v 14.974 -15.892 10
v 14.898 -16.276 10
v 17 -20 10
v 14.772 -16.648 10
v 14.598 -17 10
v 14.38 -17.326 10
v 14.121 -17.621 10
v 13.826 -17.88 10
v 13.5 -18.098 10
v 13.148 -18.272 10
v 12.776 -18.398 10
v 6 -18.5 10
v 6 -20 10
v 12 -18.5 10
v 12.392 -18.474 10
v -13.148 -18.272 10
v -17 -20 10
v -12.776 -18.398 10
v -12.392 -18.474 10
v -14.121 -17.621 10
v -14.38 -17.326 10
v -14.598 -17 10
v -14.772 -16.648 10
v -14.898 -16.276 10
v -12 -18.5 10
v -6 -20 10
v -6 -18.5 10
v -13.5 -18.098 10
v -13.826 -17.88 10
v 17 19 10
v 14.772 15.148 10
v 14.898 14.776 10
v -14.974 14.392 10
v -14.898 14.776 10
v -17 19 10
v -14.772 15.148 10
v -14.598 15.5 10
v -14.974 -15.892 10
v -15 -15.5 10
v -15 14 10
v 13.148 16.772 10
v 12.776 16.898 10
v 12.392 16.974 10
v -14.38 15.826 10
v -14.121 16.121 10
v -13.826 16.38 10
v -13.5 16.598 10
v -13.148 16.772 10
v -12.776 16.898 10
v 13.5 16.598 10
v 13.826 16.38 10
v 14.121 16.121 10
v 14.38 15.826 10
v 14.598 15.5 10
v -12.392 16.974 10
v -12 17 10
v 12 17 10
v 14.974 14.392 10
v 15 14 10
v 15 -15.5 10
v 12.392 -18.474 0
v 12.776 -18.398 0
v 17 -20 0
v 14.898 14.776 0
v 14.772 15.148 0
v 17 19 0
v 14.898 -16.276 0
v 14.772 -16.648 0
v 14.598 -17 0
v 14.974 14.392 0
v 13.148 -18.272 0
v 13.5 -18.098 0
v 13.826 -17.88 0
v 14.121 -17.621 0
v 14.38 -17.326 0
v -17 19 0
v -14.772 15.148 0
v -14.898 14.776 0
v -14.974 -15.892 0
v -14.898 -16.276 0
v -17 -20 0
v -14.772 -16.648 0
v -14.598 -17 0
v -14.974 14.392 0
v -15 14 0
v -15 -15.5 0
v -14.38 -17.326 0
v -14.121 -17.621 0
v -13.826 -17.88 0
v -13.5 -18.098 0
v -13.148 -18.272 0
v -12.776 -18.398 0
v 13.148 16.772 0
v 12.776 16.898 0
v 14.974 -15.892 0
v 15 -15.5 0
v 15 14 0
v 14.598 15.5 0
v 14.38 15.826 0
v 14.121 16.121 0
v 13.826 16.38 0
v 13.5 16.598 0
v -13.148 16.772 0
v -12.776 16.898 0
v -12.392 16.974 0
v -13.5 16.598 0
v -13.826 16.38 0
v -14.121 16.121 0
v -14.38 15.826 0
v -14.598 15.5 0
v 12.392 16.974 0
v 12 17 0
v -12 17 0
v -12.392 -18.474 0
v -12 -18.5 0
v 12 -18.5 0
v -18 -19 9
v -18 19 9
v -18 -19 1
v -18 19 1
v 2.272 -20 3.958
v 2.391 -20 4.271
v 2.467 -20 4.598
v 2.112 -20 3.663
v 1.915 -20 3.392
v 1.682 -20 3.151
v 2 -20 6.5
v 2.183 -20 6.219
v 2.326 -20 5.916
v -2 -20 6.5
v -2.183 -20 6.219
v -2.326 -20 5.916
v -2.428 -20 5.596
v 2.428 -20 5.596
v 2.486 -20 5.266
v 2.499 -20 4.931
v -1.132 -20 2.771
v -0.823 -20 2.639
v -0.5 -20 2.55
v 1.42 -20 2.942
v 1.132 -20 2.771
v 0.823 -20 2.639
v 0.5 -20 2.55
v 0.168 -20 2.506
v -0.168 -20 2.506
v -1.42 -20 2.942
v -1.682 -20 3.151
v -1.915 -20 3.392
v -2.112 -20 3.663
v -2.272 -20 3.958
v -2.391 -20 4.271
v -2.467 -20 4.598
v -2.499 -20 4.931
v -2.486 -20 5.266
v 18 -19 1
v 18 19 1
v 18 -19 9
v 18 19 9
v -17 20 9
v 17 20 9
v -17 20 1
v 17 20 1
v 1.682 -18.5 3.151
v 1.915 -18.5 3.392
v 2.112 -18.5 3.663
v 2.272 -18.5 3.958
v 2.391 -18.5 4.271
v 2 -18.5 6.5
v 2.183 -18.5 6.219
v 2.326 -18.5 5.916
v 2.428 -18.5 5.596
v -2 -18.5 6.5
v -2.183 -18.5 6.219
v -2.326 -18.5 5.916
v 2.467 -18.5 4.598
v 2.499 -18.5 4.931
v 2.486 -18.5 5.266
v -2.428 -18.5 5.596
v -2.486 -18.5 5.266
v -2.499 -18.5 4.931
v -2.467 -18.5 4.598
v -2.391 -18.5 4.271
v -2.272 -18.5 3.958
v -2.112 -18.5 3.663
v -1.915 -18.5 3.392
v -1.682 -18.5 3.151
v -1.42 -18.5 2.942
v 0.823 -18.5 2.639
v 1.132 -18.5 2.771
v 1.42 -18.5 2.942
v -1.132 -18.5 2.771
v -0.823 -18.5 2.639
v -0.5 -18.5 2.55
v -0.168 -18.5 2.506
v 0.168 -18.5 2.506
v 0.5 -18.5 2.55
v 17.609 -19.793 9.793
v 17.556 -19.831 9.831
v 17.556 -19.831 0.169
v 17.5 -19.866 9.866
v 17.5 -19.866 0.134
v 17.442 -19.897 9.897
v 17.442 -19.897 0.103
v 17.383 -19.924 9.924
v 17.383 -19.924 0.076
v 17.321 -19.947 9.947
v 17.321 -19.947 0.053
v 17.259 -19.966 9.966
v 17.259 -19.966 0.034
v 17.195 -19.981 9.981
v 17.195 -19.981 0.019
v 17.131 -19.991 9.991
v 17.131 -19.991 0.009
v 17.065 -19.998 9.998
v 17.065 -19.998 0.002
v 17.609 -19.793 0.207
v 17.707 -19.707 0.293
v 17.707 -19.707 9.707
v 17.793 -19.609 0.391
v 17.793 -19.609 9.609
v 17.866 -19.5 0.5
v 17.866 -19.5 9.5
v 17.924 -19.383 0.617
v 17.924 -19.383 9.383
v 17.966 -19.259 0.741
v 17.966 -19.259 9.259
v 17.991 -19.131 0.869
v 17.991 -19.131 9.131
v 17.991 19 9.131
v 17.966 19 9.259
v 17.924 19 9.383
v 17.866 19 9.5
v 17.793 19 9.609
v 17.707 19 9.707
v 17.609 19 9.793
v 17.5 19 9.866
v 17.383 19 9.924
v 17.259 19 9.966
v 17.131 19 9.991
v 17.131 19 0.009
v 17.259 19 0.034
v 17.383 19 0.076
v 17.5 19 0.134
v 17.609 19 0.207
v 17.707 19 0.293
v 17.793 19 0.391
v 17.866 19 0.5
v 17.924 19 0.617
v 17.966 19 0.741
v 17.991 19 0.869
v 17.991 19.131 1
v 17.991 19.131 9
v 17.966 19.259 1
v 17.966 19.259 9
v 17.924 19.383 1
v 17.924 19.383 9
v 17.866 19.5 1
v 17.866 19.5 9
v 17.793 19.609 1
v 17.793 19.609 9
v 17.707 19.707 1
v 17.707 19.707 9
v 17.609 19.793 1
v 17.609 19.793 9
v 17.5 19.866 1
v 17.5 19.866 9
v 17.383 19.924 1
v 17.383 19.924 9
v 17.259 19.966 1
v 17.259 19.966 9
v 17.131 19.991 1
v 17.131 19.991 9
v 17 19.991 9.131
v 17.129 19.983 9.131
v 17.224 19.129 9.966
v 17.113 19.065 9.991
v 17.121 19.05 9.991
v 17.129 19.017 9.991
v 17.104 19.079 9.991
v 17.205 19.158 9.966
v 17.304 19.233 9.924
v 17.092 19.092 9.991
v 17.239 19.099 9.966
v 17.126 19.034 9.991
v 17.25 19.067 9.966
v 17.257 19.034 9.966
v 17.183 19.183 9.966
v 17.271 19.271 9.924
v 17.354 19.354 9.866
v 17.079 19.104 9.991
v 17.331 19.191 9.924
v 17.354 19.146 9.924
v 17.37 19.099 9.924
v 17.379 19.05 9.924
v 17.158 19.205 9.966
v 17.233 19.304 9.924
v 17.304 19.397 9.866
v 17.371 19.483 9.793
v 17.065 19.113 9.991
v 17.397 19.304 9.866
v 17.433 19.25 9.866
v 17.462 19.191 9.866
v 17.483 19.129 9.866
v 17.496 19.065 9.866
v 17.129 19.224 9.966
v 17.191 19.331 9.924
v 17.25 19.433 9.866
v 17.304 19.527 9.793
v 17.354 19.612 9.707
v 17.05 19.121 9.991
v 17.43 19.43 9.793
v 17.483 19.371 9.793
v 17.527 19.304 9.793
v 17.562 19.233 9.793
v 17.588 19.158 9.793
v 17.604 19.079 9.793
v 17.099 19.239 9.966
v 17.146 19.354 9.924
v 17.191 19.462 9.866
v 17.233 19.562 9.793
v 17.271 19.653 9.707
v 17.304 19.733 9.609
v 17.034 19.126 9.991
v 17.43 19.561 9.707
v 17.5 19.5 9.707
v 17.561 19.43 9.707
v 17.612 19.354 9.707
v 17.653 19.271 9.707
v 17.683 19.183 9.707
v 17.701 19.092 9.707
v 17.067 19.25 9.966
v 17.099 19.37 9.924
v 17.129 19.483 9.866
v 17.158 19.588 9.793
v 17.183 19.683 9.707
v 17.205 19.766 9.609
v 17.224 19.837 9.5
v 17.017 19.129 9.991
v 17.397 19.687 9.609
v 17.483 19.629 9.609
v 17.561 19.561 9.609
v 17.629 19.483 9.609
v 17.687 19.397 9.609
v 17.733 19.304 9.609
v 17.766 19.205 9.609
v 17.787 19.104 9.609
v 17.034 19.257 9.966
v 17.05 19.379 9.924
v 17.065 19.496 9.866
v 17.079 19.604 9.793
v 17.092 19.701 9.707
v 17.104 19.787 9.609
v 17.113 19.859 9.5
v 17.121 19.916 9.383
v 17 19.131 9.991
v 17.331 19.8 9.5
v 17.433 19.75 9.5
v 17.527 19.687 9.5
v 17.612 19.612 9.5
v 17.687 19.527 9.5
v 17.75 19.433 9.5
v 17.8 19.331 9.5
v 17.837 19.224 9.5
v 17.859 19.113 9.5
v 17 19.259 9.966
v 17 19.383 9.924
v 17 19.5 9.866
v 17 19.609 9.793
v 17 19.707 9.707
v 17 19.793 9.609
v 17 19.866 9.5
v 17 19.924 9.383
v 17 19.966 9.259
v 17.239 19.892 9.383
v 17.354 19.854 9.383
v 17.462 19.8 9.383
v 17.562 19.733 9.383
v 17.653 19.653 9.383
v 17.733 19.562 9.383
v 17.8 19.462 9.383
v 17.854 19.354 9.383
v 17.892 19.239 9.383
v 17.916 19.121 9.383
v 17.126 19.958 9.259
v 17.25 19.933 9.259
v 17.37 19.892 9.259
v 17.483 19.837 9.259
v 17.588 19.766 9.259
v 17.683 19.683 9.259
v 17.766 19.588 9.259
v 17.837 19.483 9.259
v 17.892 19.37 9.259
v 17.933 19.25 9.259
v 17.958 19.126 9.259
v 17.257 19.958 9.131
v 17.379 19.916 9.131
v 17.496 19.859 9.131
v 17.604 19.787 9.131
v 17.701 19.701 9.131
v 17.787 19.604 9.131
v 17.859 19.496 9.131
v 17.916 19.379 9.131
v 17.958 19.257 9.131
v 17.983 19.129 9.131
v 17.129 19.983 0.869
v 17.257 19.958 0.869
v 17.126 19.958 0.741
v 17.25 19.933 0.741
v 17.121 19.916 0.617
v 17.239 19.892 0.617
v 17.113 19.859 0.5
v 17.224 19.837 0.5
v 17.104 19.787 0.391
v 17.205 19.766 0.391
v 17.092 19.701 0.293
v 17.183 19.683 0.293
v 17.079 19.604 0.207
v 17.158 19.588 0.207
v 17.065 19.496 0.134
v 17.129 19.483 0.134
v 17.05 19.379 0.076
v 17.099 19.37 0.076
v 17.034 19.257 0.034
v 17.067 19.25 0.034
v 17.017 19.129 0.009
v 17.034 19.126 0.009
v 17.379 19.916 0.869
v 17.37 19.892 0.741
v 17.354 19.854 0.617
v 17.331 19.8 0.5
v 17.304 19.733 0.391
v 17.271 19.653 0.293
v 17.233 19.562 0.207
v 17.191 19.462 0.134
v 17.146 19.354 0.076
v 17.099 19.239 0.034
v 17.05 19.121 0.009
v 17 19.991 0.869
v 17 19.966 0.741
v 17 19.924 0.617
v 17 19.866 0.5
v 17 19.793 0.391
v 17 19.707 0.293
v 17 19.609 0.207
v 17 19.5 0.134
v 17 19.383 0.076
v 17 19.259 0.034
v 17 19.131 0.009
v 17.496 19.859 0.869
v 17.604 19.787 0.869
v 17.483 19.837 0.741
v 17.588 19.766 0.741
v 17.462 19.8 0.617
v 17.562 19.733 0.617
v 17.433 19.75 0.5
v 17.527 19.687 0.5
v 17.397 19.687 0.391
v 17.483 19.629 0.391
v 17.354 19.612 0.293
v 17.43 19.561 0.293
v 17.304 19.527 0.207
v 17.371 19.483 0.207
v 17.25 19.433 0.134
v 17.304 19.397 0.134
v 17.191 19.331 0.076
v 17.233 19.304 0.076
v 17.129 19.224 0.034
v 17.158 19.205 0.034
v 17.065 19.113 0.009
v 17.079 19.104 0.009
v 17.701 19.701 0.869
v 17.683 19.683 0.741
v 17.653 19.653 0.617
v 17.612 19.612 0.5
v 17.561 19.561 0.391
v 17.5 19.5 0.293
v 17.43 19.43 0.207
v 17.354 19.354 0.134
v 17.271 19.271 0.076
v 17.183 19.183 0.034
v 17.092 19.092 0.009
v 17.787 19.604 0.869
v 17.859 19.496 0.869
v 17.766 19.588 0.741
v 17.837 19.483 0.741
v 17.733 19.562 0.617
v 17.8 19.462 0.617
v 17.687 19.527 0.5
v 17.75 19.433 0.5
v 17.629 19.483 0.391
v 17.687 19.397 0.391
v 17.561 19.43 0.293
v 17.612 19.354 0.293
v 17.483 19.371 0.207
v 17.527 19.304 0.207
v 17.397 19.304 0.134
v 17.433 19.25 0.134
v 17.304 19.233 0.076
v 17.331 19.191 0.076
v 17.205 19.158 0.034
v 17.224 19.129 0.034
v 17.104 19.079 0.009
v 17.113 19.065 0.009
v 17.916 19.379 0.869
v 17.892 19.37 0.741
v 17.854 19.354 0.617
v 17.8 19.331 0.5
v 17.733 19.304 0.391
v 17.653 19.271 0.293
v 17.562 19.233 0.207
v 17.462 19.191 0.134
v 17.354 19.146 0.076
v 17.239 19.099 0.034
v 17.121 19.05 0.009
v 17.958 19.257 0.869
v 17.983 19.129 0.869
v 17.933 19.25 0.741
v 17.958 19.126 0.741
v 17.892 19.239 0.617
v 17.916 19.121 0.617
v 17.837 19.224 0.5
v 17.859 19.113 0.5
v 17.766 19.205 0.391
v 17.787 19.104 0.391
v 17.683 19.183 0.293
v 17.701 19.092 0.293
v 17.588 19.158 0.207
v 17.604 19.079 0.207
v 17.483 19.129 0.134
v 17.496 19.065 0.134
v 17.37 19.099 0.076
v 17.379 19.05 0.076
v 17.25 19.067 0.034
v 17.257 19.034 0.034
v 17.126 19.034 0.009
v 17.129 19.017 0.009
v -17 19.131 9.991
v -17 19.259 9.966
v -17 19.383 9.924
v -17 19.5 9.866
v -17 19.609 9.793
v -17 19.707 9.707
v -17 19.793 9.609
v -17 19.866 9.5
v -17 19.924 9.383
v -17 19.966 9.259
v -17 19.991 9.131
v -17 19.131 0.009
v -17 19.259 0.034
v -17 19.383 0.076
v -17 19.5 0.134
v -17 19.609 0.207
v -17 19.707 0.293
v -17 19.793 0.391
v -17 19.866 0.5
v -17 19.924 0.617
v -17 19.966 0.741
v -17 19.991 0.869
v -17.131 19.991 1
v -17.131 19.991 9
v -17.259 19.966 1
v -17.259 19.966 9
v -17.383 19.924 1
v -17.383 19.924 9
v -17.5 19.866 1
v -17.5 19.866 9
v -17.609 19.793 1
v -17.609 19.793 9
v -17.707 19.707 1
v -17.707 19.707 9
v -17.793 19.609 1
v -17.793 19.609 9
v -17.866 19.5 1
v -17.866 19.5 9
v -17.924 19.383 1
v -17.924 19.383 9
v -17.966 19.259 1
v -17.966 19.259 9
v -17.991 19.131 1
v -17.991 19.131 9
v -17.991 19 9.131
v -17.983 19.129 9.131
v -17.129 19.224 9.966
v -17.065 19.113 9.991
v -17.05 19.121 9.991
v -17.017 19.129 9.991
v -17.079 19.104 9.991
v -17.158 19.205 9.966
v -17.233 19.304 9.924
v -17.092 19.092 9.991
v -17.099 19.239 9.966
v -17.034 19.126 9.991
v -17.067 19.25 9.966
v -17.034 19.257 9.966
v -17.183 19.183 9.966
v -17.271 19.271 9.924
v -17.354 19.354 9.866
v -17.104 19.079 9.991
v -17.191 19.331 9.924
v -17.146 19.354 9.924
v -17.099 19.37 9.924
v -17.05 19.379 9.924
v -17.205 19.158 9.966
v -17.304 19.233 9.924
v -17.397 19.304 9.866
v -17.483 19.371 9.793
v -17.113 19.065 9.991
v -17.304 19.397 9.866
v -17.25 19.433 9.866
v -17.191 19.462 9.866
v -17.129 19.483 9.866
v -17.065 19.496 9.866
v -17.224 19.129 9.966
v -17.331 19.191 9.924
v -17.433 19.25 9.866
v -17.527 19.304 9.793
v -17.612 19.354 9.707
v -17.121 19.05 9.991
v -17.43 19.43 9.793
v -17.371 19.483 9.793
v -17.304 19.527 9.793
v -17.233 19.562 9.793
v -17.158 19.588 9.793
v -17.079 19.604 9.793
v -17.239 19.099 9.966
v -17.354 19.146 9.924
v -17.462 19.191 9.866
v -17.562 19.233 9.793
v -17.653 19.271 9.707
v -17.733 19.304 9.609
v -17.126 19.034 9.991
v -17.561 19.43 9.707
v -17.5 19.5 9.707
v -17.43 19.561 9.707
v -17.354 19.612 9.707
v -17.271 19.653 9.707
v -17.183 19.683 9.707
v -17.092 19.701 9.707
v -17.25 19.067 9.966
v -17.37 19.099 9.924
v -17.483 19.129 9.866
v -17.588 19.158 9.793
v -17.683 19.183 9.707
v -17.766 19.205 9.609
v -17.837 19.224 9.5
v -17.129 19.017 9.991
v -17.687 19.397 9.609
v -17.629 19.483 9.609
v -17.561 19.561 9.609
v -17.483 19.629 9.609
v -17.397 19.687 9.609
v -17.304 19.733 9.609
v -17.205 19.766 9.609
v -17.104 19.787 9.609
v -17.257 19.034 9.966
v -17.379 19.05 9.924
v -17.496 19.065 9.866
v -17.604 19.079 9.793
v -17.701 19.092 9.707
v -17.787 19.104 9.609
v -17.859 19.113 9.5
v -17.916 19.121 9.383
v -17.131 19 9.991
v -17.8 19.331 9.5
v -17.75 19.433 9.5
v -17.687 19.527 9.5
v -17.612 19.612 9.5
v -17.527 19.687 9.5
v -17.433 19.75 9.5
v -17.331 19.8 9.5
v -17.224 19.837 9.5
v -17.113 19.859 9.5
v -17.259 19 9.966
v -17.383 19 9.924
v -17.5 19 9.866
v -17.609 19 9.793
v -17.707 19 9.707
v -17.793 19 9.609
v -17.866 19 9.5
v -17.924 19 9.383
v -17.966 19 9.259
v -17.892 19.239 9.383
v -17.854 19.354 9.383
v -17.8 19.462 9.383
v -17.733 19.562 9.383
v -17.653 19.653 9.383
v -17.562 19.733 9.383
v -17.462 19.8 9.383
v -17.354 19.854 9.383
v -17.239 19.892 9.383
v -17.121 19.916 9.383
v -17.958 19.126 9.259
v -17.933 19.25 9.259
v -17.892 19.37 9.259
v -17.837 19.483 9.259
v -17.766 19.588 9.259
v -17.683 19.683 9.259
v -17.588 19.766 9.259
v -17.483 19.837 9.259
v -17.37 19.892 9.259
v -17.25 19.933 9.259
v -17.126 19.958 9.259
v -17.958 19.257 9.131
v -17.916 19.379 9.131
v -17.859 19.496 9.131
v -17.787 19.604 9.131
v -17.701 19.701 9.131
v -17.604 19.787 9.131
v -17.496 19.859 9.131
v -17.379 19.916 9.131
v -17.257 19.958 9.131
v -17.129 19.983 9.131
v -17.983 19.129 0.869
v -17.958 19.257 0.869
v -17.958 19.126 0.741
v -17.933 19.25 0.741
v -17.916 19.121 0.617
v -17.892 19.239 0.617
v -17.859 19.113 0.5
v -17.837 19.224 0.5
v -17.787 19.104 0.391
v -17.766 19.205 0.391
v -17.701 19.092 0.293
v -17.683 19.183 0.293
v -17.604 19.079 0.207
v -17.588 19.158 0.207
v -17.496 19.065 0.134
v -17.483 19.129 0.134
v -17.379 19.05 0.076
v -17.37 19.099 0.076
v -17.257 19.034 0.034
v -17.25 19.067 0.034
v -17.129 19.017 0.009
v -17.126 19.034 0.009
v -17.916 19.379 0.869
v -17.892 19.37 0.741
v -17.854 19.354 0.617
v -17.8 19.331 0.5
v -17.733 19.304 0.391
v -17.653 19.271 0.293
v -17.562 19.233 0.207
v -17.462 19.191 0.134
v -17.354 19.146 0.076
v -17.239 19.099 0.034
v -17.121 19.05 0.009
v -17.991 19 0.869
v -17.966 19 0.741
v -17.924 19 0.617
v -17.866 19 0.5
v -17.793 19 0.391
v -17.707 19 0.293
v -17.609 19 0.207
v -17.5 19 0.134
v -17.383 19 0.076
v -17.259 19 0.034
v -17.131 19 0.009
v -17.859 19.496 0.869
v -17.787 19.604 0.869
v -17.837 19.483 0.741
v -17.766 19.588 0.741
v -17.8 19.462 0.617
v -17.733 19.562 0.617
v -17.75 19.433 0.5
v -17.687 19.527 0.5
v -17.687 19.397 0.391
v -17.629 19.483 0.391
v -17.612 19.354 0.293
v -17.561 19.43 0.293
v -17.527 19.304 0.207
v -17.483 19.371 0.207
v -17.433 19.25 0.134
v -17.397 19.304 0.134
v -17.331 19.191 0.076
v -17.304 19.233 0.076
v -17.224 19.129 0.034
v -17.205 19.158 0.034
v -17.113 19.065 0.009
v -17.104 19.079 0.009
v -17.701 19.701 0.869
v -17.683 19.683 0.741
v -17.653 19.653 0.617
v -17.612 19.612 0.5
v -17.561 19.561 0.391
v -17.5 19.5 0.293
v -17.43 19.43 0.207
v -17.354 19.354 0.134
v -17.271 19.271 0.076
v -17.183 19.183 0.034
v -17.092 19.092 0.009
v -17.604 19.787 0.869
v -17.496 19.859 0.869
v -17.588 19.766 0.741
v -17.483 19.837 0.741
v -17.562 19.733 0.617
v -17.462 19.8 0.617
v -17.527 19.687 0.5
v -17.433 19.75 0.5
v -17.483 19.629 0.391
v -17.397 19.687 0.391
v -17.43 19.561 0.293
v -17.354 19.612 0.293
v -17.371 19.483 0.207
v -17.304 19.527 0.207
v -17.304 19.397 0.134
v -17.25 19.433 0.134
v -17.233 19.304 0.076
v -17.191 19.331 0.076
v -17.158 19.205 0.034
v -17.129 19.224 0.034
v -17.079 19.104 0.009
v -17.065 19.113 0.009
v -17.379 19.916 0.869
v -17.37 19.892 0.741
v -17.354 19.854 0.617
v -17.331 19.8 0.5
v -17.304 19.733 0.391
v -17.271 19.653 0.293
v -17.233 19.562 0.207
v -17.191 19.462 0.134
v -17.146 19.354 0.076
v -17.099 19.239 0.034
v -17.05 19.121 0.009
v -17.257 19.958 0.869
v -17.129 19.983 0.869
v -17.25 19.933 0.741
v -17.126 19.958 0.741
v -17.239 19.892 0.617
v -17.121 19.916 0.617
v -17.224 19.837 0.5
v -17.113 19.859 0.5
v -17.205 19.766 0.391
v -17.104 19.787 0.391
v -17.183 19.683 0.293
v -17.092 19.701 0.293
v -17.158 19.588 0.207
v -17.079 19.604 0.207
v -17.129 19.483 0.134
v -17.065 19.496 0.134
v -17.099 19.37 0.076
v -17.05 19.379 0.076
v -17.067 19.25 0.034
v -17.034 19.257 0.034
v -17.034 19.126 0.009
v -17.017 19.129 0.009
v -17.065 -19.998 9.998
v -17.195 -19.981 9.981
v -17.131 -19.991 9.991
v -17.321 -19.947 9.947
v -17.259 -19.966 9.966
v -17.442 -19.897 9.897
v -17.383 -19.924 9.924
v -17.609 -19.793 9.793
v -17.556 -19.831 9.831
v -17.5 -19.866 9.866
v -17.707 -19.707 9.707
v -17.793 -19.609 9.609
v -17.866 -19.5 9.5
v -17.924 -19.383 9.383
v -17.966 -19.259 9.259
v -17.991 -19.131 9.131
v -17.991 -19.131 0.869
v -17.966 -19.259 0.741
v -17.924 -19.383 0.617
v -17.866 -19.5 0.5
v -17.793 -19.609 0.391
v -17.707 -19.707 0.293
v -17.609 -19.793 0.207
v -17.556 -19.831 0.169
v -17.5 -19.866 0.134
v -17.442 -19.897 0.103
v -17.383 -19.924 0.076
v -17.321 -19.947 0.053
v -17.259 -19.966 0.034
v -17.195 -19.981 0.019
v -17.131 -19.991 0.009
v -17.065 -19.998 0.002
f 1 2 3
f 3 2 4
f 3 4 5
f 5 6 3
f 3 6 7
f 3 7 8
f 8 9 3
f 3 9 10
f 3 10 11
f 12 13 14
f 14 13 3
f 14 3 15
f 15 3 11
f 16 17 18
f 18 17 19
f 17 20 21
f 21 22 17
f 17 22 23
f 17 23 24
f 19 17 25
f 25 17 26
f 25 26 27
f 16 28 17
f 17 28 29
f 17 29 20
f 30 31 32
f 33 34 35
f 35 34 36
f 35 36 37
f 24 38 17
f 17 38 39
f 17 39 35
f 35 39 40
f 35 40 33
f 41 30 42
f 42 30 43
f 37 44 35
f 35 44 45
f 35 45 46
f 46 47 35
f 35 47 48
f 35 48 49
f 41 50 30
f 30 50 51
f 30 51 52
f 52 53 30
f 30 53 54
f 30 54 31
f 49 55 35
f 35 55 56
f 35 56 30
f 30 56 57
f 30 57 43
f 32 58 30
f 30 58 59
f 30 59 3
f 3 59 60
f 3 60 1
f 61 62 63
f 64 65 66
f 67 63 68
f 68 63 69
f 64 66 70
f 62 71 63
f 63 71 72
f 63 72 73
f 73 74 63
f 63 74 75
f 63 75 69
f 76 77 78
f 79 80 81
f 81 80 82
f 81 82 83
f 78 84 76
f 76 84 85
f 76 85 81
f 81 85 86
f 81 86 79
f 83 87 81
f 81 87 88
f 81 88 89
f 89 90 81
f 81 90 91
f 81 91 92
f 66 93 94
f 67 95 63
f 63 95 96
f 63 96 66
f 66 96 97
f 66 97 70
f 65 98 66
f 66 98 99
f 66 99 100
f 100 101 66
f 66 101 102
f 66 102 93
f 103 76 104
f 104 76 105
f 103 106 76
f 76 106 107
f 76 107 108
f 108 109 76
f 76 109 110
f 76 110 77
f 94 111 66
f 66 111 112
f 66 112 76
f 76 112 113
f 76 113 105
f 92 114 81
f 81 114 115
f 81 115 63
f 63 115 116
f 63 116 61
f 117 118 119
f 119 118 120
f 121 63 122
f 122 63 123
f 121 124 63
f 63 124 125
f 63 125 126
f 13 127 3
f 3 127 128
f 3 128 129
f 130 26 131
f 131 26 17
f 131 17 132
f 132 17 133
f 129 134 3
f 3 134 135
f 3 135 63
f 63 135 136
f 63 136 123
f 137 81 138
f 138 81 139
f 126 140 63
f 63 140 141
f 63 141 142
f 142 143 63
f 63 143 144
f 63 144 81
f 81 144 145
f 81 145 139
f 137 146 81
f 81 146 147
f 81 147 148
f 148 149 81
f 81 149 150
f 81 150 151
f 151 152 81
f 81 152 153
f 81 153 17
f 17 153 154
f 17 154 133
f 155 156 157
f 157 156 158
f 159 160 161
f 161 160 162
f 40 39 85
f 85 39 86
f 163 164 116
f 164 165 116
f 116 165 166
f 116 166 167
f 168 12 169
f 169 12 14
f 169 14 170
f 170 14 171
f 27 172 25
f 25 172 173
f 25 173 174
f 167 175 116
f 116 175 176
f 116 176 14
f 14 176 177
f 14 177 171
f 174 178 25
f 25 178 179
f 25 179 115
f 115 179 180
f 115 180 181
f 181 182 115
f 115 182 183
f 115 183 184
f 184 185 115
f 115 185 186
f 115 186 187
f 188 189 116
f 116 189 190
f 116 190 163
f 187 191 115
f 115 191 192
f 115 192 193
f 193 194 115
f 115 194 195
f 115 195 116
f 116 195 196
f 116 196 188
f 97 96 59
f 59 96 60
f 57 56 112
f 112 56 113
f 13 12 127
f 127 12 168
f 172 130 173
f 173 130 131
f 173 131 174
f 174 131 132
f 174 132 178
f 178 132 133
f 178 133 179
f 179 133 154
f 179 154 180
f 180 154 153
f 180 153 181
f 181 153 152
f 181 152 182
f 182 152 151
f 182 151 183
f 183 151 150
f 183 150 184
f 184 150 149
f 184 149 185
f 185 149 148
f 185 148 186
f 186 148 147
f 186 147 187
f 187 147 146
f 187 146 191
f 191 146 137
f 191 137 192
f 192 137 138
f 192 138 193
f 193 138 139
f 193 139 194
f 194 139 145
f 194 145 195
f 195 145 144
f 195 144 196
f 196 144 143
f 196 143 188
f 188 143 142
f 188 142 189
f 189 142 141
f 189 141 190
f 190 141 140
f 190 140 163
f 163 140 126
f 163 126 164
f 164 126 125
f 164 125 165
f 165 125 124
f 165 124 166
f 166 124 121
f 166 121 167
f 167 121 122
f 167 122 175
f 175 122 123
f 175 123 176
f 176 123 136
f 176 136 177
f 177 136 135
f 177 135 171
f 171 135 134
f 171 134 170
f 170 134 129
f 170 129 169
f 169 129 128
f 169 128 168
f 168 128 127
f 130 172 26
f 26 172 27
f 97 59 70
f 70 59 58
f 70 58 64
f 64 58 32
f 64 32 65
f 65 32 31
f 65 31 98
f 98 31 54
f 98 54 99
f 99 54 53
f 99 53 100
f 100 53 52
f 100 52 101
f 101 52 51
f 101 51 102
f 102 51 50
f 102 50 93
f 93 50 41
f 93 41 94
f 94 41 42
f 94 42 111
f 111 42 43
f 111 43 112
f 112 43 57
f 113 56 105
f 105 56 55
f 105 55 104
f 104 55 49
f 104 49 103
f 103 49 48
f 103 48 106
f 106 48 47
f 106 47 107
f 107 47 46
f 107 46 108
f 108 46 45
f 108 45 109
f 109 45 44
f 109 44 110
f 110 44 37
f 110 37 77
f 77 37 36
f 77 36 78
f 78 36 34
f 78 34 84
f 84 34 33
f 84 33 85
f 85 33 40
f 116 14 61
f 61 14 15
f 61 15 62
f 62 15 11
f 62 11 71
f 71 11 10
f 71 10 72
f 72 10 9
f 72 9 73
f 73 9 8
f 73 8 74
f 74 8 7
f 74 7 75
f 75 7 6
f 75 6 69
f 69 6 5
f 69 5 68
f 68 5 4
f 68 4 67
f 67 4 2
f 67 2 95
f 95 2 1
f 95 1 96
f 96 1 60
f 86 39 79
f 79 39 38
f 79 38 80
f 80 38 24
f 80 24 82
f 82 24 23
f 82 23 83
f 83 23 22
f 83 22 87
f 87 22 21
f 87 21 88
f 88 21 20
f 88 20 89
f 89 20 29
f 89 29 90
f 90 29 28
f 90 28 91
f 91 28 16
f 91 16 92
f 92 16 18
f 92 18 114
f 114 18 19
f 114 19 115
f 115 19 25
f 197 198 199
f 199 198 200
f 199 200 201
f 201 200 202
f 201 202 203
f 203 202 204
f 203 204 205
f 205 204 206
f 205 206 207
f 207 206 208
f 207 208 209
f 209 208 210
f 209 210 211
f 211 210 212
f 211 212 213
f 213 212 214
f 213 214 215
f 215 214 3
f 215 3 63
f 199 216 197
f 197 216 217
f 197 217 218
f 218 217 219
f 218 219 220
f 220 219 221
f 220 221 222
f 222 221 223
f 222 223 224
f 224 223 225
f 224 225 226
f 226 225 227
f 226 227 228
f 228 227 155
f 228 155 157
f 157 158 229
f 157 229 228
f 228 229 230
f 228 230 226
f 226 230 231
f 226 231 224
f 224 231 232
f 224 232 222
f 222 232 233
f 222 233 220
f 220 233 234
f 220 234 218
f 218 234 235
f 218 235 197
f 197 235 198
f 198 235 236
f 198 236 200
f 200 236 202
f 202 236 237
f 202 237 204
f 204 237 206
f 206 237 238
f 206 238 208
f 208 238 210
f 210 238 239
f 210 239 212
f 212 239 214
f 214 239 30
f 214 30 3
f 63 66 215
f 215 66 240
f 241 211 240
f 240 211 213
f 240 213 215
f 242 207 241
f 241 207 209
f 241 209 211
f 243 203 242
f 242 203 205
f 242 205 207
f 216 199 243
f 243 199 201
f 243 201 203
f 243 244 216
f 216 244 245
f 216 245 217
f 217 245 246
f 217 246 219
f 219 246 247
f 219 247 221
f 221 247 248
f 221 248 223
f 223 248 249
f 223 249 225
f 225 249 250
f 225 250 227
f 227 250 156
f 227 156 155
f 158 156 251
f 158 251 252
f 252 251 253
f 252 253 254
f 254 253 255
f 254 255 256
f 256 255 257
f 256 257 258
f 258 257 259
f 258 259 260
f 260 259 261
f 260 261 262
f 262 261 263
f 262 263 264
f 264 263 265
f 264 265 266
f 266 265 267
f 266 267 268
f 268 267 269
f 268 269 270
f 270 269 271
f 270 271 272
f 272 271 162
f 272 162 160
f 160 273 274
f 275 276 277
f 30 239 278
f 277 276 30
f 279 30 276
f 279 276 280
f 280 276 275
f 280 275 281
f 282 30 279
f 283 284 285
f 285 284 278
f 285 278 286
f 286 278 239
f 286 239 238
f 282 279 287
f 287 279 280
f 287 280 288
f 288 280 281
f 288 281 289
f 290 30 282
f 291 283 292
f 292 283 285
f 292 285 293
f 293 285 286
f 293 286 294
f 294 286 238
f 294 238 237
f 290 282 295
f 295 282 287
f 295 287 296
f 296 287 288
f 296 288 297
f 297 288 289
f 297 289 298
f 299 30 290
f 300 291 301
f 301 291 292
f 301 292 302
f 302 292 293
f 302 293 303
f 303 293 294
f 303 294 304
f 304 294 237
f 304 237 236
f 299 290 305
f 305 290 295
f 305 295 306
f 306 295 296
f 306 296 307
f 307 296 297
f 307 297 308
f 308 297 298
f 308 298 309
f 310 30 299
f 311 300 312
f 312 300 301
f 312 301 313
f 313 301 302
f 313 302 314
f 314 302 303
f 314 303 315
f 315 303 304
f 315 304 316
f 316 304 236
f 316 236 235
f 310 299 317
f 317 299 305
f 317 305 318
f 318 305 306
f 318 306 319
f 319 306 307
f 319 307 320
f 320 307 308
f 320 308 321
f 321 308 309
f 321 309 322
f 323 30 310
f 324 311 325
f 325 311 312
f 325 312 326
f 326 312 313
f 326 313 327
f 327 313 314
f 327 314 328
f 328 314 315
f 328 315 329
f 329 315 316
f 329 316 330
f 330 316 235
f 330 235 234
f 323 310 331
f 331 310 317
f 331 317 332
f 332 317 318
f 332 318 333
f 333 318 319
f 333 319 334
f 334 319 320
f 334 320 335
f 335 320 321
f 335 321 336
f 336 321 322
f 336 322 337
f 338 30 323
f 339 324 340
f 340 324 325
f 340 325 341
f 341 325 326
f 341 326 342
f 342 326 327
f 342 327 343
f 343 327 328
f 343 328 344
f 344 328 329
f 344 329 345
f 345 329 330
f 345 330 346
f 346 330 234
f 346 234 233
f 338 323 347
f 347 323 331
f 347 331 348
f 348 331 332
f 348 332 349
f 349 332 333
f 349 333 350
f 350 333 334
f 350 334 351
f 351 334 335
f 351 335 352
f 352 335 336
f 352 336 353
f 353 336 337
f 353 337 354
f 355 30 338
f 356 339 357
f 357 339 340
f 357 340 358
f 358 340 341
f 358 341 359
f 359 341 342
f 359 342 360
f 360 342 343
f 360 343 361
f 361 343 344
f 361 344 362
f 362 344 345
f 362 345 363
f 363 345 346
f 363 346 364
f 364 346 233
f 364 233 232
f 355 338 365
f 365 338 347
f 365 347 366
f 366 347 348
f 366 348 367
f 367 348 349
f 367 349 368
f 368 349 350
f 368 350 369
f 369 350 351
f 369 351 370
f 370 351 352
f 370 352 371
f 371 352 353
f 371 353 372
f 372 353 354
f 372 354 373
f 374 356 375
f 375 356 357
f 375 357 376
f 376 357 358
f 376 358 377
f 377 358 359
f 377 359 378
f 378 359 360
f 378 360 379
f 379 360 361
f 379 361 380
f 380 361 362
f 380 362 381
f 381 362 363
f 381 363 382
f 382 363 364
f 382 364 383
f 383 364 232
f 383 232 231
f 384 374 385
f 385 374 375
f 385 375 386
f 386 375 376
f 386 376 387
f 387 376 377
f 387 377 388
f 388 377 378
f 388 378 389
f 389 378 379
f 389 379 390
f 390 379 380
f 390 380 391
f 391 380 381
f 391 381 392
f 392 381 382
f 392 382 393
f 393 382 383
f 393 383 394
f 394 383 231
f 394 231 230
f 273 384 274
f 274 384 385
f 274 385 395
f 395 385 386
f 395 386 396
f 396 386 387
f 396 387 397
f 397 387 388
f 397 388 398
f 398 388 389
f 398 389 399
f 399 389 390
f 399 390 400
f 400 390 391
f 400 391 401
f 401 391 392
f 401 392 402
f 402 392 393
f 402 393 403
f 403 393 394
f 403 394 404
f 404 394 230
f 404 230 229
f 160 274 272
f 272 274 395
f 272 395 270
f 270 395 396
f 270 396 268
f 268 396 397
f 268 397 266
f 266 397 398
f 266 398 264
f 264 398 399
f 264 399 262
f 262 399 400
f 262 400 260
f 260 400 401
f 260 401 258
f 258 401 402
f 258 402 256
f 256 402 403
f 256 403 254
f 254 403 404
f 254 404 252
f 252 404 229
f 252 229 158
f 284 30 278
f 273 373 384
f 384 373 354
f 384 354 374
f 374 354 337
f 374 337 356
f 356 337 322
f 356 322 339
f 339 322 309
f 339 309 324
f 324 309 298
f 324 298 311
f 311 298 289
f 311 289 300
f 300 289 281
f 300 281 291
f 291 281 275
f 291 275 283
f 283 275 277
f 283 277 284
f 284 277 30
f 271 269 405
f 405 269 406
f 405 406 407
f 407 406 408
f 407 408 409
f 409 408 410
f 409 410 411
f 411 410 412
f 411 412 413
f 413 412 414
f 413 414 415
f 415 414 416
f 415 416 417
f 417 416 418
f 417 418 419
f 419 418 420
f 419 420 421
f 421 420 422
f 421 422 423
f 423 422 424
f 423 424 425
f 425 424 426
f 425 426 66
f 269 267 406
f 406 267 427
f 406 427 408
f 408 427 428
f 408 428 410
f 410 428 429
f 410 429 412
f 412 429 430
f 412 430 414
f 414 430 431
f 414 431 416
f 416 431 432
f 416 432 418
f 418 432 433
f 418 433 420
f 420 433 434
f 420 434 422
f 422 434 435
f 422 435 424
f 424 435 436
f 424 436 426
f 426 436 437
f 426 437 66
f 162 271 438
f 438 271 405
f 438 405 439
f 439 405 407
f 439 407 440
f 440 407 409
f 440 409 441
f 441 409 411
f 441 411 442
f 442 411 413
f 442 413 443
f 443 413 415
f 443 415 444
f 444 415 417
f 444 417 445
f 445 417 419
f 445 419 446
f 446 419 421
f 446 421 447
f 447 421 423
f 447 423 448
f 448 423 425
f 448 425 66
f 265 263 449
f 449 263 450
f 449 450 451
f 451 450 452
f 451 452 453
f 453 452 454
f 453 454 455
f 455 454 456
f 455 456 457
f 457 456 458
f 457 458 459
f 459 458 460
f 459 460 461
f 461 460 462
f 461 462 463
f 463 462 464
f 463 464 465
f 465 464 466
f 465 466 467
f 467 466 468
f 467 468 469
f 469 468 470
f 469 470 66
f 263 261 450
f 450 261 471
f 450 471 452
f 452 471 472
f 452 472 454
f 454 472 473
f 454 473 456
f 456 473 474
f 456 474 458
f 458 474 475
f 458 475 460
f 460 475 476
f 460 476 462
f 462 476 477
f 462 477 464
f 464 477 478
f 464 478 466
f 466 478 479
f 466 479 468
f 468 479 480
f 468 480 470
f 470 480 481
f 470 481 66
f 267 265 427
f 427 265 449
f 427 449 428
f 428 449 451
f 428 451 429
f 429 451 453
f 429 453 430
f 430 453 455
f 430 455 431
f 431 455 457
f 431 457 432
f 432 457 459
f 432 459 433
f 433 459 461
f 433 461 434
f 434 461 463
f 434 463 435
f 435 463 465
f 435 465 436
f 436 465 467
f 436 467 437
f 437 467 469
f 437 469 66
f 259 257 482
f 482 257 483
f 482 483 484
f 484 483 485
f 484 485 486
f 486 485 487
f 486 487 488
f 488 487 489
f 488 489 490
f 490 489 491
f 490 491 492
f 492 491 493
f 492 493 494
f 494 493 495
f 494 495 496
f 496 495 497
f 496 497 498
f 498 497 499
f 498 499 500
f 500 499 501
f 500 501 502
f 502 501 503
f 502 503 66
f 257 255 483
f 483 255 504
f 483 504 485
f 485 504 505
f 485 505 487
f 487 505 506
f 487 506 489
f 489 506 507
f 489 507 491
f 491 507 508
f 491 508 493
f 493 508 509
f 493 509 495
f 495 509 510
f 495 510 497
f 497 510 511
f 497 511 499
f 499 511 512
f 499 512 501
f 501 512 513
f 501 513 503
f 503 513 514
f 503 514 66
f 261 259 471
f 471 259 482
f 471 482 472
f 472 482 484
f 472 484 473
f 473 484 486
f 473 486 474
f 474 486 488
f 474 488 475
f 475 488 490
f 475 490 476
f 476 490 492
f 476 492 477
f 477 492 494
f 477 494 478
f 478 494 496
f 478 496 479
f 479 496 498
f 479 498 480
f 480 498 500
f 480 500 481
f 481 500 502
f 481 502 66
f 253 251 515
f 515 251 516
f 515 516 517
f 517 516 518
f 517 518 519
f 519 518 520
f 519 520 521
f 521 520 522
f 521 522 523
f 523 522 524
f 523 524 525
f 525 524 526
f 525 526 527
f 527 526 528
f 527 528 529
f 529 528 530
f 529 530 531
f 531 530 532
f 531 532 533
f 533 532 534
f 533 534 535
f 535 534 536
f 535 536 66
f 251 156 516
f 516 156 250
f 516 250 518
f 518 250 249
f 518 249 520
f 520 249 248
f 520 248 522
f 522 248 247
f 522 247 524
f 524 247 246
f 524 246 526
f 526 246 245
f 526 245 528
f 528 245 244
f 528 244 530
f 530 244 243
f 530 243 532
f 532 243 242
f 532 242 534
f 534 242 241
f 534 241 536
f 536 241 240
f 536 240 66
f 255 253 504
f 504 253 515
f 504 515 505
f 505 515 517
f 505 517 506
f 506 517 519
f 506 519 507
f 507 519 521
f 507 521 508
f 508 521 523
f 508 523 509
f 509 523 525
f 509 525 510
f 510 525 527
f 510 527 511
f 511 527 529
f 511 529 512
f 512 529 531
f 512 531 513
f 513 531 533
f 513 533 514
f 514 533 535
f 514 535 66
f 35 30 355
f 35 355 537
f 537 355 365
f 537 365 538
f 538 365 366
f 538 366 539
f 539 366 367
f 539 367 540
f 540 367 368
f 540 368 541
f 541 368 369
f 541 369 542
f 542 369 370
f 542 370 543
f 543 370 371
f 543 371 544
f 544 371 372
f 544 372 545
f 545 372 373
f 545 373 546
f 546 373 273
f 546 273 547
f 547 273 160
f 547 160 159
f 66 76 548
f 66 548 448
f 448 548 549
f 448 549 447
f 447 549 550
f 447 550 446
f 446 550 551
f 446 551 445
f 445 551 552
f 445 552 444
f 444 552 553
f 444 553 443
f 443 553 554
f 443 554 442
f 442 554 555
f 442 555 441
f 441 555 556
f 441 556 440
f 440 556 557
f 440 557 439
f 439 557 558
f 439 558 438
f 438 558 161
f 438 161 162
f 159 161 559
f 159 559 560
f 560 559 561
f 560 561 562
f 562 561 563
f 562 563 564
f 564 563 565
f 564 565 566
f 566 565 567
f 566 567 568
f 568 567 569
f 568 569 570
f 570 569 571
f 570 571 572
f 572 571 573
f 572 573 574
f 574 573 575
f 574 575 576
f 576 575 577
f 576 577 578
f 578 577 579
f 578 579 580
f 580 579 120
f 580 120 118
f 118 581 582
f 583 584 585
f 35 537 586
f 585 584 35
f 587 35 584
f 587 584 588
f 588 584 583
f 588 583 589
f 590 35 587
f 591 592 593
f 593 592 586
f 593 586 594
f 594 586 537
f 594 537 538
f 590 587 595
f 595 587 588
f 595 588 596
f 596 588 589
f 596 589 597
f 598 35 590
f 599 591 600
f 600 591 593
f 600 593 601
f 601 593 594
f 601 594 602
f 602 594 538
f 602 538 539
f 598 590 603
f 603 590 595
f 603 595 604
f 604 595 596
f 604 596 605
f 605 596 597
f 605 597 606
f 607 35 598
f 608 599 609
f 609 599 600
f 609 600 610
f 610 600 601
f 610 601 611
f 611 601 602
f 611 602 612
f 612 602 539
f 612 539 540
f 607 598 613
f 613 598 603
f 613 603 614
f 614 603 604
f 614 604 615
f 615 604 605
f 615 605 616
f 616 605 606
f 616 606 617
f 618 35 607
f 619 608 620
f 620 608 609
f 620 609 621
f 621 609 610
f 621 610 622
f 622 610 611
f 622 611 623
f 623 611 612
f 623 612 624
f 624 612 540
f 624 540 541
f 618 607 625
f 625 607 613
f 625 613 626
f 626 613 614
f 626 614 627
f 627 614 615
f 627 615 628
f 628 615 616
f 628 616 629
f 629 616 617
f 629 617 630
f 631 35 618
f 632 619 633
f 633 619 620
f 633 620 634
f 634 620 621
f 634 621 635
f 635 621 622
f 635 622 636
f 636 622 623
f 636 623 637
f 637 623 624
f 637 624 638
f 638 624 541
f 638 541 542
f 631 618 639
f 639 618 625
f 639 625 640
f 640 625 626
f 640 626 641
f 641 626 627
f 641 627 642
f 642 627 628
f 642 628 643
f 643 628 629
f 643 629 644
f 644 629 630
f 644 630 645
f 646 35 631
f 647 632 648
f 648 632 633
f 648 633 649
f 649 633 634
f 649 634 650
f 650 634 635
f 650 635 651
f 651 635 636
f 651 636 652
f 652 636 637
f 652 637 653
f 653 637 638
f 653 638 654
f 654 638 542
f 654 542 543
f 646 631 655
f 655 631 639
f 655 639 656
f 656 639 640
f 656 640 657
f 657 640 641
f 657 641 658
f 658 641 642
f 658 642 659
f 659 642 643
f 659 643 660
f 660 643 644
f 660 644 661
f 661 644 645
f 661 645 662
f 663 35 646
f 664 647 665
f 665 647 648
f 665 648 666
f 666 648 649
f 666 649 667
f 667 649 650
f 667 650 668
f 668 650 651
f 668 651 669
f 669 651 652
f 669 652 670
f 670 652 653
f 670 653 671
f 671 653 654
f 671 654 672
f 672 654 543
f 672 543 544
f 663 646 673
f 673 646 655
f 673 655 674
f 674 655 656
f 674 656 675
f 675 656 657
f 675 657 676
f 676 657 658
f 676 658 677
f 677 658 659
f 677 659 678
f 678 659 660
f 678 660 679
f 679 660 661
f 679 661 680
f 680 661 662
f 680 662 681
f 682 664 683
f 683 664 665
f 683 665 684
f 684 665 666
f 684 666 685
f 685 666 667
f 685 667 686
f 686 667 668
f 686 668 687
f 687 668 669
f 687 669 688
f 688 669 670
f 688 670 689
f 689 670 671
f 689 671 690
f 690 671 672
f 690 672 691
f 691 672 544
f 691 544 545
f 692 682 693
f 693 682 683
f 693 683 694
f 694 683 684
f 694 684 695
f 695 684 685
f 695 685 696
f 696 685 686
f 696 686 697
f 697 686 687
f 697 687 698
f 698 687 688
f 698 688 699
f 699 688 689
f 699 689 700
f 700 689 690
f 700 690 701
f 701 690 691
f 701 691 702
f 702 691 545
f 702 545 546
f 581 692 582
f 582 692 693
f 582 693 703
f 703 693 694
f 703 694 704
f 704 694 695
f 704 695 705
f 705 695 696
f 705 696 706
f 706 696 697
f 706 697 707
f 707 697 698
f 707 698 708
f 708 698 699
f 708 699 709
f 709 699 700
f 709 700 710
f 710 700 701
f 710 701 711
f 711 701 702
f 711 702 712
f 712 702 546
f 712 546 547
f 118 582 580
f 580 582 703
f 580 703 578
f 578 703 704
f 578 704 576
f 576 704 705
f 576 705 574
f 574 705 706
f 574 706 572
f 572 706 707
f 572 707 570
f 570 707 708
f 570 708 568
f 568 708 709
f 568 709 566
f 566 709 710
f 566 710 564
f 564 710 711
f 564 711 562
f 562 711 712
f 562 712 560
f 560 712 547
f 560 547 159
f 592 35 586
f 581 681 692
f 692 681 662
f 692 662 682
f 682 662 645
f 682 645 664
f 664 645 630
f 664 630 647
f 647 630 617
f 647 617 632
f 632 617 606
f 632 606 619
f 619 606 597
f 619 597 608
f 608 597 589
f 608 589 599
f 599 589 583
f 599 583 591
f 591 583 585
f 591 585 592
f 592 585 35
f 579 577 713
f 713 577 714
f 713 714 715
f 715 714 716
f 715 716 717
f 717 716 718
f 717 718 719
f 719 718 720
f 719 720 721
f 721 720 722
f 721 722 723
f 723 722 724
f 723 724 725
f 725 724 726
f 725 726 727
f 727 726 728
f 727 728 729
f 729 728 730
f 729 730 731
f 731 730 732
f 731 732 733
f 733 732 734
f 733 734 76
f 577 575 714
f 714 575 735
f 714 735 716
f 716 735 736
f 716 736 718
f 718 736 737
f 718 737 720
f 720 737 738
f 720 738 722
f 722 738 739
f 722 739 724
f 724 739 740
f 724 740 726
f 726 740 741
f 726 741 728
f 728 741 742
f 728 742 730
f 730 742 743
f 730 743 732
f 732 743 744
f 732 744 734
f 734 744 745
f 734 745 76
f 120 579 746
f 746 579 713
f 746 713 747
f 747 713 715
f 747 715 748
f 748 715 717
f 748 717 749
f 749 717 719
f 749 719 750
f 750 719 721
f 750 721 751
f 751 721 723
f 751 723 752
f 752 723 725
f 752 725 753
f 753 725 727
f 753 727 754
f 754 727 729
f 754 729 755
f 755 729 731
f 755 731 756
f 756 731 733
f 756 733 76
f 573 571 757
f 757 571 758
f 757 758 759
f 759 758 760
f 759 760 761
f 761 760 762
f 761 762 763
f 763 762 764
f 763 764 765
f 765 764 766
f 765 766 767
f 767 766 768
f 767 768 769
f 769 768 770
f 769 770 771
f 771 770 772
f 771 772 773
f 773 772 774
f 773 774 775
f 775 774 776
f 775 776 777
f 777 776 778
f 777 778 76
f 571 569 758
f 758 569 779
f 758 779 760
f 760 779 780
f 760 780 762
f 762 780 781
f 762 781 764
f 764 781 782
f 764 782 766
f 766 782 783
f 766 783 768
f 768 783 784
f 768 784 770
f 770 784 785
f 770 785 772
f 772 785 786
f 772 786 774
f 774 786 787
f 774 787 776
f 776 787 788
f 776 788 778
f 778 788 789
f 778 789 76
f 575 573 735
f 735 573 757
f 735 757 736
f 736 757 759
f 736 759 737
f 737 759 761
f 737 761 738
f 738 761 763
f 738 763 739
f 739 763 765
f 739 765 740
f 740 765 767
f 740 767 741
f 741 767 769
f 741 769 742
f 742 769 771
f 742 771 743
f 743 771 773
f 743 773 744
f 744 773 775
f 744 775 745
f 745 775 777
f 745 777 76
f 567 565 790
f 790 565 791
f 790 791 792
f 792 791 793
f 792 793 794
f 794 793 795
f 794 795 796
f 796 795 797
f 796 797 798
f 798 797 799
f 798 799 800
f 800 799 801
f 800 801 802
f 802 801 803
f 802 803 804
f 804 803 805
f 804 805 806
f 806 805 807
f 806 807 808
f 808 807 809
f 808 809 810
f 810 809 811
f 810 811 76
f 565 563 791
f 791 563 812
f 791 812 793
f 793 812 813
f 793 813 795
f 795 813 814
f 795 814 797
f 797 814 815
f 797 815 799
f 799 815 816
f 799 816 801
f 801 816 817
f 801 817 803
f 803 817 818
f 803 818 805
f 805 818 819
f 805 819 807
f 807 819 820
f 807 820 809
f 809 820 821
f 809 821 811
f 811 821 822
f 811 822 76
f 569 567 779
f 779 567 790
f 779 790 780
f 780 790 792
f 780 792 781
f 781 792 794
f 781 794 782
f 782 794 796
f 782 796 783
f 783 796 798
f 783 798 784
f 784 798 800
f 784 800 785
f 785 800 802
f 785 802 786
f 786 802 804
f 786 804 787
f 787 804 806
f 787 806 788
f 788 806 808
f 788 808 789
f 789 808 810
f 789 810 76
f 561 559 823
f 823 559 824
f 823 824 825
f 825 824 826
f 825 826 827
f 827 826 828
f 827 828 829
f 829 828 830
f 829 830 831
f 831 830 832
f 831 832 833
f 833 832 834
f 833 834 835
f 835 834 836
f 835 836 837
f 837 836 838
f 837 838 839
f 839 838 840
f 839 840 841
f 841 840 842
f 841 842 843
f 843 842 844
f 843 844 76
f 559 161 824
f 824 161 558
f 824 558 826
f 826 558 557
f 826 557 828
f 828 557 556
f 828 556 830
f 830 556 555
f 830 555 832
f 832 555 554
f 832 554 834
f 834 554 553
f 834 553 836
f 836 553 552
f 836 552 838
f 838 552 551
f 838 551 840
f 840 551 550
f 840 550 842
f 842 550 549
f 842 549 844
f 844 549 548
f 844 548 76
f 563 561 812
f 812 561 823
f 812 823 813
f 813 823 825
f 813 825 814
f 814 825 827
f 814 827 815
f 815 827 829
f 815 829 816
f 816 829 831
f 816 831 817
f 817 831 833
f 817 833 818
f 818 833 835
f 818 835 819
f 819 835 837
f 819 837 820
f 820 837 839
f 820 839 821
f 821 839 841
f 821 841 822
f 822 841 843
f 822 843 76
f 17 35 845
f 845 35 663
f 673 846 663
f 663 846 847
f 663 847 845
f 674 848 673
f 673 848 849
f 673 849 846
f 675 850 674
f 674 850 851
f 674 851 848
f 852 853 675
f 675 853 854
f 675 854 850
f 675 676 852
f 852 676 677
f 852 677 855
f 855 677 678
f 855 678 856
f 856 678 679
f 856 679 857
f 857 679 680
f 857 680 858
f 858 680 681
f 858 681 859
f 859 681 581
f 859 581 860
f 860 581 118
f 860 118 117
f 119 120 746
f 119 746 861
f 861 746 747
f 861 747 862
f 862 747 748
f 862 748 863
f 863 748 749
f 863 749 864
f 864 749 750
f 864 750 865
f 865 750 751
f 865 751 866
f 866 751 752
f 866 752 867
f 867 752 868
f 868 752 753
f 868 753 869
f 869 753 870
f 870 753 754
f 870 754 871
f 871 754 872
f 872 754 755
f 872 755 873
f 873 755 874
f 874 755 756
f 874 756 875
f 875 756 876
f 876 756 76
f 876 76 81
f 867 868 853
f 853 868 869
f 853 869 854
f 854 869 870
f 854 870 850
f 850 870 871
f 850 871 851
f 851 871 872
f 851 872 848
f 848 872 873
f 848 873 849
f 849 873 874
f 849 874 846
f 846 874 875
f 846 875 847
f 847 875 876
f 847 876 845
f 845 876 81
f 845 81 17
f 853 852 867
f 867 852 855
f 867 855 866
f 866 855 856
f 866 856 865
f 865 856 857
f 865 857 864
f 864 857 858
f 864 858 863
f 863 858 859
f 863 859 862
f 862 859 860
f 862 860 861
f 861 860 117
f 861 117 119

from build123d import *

# Parameters (mm, degrees)
SKETCH1_W           = 36
SKETCH1_H           = 40
SKETCH1_W_2         = 30
SKETCH1_H_2         = 35.5
BOSS_EXTRUDE1_DEPTH = 10
CUT_EXTRUDE2_REACH  = 46.989
FILLET1_R           = 3
FILLET2_R           = 1


with BuildPart() as part:
    # Sketch1 → Boss-Extrude1 (new body)
    with BuildSketch(Plane.XY):
        Rectangle(SKETCH1_W, SKETCH1_H)
        with Locations((0, -0.75)):
            Rectangle(SKETCH1_W_2, SKETCH1_H_2, mode=Mode.SUBTRACT)
    extrude(amount=BOSS_EXTRUDE1_DEPTH)

    # Sketch2 → Cut-Extrude2 (cut, up to next)
    with BuildSketch(Plane.XZ.offset(20), mode=Mode.PRIVATE) as cut_extrude2_sk1:
        with BuildLine():
            Line((-6, 10), (-2, 6.5))
            ThreePointArc((-2, 6.5), (0, 2.5), (2, 6.5))
            Line((2, 6.5), (6, 10))
            Line((6, 10), (-6, 10))
        make_face()
    cut_extrude2_tool1 = extrude(cut_extrude2_sk1.sketch, amount=-CUT_EXTRUDE2_REACH, mode=Mode.PRIVATE) & part.part
    add(cut_extrude2_tool1.solids().sort_by_distance((0, -20, 7.092656))[0], mode=Mode.SUBTRACT)

    # Fillet1
    fillet1_edges = [part.edges().sort_by_distance(p)[0] for p in [
        (-15, 17, 5),
        (-15, -18.5, 5),
        (15, -18.5, 5),
        (15, 17, 5),
    ]]
    fillet(fillet1_edges, radius=FILLET1_R)

    # Fillet2
    fillet2_edges = [part.edges().sort_by_distance(p)[0] for p in [
        (18, 0, 10),
        (0, 20, 10),
        (-18, 0, 10),
        (0, 20, 0),
        (18, 0, 0),
        (-18, 0, 0),
        (-18, 20, 5),
        (18, 20, 5),
        (18, -20, 5),
        (-18, -20, 5),
    ]]
    fillet(fillet2_edges, radius=FILLET2_R)


solid = part.part
